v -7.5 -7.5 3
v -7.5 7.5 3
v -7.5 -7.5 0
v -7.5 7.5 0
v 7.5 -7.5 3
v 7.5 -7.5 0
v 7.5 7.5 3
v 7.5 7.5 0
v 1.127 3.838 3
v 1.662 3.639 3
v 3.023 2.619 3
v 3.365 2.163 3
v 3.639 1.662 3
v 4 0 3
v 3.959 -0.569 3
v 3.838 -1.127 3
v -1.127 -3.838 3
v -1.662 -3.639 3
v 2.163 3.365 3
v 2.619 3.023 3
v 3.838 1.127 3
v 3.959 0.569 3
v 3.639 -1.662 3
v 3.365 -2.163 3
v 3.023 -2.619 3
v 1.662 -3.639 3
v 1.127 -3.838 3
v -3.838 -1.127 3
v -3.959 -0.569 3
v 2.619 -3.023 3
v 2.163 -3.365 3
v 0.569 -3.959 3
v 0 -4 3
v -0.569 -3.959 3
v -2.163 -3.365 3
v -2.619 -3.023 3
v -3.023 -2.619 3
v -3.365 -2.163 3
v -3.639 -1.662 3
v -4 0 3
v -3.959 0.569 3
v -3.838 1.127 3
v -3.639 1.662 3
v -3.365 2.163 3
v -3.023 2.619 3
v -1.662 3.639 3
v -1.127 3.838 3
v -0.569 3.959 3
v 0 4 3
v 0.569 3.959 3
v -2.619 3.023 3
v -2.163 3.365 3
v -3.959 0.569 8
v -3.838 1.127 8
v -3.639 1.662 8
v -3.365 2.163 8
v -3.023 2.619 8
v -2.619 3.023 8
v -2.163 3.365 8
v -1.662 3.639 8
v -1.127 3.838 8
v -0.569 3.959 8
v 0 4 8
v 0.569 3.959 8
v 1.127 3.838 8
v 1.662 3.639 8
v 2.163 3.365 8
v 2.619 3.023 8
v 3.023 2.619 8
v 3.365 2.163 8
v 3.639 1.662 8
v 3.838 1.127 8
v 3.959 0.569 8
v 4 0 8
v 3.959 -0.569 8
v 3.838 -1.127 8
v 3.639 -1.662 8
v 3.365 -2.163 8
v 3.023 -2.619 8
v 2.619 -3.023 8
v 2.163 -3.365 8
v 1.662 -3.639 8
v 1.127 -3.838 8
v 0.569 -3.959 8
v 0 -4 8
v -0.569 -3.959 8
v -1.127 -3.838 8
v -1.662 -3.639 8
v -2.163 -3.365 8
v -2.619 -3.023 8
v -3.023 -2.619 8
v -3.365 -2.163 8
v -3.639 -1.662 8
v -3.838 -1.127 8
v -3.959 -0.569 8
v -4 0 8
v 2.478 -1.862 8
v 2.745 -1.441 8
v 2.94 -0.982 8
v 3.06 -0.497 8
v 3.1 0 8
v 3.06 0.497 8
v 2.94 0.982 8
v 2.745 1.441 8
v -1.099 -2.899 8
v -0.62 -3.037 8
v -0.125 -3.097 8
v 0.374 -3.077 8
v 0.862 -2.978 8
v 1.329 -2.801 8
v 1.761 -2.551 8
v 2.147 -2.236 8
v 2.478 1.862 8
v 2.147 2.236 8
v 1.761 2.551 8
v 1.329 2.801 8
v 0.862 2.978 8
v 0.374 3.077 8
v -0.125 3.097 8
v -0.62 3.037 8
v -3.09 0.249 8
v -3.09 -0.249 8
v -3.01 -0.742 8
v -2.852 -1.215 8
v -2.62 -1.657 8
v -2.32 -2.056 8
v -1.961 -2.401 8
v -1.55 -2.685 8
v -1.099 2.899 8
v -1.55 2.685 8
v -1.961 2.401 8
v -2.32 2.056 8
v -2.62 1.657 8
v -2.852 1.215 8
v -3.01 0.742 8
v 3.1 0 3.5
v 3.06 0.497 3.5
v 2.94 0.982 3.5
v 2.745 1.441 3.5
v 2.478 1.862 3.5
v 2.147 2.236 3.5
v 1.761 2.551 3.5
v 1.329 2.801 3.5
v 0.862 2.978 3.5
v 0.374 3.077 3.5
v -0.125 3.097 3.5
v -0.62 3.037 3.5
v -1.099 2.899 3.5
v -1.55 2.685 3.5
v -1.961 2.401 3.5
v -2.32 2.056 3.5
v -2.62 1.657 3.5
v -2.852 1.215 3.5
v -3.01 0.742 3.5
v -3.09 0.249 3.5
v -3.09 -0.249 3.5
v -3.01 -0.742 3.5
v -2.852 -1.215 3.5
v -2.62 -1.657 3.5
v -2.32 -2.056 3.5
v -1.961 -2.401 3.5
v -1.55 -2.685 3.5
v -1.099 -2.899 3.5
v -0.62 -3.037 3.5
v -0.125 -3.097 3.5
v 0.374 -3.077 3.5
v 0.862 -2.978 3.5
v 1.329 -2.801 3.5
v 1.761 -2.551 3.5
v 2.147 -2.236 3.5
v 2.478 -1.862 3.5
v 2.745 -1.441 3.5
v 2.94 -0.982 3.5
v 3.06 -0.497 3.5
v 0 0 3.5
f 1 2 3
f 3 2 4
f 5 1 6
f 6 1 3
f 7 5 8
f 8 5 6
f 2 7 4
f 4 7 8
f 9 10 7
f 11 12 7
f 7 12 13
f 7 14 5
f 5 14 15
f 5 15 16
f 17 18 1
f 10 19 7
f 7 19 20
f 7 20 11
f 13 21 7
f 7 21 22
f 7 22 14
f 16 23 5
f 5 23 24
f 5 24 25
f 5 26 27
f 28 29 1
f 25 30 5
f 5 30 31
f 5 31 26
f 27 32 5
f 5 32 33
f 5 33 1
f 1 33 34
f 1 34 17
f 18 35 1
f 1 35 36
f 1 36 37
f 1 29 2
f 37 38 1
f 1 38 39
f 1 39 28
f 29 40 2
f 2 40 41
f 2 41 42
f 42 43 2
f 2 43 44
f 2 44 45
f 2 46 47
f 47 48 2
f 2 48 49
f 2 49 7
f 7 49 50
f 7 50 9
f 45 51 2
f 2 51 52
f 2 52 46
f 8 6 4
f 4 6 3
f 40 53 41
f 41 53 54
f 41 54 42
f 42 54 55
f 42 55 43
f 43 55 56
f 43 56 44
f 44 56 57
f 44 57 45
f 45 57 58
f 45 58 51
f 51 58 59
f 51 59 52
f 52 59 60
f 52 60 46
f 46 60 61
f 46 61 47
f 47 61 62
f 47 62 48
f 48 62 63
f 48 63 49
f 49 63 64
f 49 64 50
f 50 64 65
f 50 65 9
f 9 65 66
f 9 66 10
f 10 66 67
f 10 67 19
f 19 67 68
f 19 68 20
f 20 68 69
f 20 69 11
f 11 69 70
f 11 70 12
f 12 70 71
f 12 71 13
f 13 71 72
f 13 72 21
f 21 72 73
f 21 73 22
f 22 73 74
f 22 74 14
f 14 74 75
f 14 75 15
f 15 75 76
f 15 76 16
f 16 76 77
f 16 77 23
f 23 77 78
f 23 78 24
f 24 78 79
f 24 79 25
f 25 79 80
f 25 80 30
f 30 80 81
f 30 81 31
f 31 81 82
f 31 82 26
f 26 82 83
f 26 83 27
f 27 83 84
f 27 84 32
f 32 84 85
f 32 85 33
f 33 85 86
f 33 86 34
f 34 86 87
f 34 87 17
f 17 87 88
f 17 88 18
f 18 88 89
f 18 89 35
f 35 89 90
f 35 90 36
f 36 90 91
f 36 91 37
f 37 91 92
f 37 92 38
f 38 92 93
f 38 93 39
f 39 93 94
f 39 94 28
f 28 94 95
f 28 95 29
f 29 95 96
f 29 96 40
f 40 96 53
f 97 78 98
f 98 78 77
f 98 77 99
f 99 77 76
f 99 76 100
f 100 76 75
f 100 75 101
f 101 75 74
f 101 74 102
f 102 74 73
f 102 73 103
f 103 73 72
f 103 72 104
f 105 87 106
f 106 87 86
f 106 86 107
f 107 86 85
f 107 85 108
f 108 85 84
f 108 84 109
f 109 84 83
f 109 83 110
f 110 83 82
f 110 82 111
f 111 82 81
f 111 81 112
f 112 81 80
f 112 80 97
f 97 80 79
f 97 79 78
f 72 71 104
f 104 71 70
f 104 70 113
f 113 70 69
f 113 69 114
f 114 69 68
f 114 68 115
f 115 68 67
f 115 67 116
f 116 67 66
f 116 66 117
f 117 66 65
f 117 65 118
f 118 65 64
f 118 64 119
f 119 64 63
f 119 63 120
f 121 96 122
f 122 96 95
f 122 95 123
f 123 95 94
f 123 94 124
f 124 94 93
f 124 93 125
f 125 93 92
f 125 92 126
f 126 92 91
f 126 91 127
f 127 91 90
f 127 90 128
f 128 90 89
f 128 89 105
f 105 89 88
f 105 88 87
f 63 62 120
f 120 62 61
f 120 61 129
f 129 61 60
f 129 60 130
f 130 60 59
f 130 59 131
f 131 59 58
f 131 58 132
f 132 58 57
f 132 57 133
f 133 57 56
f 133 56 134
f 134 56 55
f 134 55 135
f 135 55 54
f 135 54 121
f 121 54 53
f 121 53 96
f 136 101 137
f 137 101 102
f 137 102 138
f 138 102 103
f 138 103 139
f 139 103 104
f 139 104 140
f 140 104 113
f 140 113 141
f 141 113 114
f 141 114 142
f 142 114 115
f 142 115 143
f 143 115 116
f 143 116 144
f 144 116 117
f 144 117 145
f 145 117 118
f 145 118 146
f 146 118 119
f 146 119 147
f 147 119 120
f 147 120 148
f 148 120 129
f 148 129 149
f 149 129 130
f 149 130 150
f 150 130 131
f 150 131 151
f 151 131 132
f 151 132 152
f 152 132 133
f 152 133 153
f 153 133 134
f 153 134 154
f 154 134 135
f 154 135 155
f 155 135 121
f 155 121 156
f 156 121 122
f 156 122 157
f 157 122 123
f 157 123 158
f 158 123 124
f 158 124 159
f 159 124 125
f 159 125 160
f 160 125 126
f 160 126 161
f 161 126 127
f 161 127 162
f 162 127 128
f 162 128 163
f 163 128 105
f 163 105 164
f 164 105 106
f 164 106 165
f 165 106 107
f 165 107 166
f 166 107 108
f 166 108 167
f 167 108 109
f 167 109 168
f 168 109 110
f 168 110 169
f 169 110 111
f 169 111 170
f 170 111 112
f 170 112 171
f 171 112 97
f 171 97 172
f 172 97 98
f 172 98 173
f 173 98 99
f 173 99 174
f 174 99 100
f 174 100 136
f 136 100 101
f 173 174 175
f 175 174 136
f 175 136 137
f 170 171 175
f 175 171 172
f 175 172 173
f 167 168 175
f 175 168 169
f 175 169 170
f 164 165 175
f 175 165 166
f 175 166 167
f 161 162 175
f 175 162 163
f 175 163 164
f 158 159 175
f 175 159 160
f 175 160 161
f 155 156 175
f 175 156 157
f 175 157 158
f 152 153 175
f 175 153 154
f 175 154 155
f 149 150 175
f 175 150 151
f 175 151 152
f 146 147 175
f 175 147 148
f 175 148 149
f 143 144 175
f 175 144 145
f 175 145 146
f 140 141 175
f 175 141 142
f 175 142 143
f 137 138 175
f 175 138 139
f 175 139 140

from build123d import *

# Parameters (mm, degrees)
SKETCH3_W           = 15
SKETCH3_H           = 15
BOSS_EXTRUDE1_DEPTH = 3
SKETCH4_R           = 4
BOSS_EXTRUDE2_DEPTH = 5
SKETCH5_R           = 3.1
CUT_EXTRUDE1_DEPTH  = 4.5


with BuildPart() as part:
    # Sketch3 → Boss-Extrude1 (new body)
    with BuildSketch(Plane.XY):
        Rectangle(SKETCH3_W, SKETCH3_H)
    extrude(amount=BOSS_EXTRUDE1_DEPTH)

    # Sketch4 → Boss-Extrude2 (add)
    with BuildSketch(Plane.XY.offset(3)):
        Circle(SKETCH4_R)
    extrude(amount=BOSS_EXTRUDE2_DEPTH)

    # Sketch5 → Cut-Extrude1 (cut)
    with BuildSketch(Plane.XY.offset(8)):
        Circle(SKETCH5_R)
    extrude(amount=-CUT_EXTRUDE1_DEPTH, mode=Mode.SUBTRACT)


solid = part.part
